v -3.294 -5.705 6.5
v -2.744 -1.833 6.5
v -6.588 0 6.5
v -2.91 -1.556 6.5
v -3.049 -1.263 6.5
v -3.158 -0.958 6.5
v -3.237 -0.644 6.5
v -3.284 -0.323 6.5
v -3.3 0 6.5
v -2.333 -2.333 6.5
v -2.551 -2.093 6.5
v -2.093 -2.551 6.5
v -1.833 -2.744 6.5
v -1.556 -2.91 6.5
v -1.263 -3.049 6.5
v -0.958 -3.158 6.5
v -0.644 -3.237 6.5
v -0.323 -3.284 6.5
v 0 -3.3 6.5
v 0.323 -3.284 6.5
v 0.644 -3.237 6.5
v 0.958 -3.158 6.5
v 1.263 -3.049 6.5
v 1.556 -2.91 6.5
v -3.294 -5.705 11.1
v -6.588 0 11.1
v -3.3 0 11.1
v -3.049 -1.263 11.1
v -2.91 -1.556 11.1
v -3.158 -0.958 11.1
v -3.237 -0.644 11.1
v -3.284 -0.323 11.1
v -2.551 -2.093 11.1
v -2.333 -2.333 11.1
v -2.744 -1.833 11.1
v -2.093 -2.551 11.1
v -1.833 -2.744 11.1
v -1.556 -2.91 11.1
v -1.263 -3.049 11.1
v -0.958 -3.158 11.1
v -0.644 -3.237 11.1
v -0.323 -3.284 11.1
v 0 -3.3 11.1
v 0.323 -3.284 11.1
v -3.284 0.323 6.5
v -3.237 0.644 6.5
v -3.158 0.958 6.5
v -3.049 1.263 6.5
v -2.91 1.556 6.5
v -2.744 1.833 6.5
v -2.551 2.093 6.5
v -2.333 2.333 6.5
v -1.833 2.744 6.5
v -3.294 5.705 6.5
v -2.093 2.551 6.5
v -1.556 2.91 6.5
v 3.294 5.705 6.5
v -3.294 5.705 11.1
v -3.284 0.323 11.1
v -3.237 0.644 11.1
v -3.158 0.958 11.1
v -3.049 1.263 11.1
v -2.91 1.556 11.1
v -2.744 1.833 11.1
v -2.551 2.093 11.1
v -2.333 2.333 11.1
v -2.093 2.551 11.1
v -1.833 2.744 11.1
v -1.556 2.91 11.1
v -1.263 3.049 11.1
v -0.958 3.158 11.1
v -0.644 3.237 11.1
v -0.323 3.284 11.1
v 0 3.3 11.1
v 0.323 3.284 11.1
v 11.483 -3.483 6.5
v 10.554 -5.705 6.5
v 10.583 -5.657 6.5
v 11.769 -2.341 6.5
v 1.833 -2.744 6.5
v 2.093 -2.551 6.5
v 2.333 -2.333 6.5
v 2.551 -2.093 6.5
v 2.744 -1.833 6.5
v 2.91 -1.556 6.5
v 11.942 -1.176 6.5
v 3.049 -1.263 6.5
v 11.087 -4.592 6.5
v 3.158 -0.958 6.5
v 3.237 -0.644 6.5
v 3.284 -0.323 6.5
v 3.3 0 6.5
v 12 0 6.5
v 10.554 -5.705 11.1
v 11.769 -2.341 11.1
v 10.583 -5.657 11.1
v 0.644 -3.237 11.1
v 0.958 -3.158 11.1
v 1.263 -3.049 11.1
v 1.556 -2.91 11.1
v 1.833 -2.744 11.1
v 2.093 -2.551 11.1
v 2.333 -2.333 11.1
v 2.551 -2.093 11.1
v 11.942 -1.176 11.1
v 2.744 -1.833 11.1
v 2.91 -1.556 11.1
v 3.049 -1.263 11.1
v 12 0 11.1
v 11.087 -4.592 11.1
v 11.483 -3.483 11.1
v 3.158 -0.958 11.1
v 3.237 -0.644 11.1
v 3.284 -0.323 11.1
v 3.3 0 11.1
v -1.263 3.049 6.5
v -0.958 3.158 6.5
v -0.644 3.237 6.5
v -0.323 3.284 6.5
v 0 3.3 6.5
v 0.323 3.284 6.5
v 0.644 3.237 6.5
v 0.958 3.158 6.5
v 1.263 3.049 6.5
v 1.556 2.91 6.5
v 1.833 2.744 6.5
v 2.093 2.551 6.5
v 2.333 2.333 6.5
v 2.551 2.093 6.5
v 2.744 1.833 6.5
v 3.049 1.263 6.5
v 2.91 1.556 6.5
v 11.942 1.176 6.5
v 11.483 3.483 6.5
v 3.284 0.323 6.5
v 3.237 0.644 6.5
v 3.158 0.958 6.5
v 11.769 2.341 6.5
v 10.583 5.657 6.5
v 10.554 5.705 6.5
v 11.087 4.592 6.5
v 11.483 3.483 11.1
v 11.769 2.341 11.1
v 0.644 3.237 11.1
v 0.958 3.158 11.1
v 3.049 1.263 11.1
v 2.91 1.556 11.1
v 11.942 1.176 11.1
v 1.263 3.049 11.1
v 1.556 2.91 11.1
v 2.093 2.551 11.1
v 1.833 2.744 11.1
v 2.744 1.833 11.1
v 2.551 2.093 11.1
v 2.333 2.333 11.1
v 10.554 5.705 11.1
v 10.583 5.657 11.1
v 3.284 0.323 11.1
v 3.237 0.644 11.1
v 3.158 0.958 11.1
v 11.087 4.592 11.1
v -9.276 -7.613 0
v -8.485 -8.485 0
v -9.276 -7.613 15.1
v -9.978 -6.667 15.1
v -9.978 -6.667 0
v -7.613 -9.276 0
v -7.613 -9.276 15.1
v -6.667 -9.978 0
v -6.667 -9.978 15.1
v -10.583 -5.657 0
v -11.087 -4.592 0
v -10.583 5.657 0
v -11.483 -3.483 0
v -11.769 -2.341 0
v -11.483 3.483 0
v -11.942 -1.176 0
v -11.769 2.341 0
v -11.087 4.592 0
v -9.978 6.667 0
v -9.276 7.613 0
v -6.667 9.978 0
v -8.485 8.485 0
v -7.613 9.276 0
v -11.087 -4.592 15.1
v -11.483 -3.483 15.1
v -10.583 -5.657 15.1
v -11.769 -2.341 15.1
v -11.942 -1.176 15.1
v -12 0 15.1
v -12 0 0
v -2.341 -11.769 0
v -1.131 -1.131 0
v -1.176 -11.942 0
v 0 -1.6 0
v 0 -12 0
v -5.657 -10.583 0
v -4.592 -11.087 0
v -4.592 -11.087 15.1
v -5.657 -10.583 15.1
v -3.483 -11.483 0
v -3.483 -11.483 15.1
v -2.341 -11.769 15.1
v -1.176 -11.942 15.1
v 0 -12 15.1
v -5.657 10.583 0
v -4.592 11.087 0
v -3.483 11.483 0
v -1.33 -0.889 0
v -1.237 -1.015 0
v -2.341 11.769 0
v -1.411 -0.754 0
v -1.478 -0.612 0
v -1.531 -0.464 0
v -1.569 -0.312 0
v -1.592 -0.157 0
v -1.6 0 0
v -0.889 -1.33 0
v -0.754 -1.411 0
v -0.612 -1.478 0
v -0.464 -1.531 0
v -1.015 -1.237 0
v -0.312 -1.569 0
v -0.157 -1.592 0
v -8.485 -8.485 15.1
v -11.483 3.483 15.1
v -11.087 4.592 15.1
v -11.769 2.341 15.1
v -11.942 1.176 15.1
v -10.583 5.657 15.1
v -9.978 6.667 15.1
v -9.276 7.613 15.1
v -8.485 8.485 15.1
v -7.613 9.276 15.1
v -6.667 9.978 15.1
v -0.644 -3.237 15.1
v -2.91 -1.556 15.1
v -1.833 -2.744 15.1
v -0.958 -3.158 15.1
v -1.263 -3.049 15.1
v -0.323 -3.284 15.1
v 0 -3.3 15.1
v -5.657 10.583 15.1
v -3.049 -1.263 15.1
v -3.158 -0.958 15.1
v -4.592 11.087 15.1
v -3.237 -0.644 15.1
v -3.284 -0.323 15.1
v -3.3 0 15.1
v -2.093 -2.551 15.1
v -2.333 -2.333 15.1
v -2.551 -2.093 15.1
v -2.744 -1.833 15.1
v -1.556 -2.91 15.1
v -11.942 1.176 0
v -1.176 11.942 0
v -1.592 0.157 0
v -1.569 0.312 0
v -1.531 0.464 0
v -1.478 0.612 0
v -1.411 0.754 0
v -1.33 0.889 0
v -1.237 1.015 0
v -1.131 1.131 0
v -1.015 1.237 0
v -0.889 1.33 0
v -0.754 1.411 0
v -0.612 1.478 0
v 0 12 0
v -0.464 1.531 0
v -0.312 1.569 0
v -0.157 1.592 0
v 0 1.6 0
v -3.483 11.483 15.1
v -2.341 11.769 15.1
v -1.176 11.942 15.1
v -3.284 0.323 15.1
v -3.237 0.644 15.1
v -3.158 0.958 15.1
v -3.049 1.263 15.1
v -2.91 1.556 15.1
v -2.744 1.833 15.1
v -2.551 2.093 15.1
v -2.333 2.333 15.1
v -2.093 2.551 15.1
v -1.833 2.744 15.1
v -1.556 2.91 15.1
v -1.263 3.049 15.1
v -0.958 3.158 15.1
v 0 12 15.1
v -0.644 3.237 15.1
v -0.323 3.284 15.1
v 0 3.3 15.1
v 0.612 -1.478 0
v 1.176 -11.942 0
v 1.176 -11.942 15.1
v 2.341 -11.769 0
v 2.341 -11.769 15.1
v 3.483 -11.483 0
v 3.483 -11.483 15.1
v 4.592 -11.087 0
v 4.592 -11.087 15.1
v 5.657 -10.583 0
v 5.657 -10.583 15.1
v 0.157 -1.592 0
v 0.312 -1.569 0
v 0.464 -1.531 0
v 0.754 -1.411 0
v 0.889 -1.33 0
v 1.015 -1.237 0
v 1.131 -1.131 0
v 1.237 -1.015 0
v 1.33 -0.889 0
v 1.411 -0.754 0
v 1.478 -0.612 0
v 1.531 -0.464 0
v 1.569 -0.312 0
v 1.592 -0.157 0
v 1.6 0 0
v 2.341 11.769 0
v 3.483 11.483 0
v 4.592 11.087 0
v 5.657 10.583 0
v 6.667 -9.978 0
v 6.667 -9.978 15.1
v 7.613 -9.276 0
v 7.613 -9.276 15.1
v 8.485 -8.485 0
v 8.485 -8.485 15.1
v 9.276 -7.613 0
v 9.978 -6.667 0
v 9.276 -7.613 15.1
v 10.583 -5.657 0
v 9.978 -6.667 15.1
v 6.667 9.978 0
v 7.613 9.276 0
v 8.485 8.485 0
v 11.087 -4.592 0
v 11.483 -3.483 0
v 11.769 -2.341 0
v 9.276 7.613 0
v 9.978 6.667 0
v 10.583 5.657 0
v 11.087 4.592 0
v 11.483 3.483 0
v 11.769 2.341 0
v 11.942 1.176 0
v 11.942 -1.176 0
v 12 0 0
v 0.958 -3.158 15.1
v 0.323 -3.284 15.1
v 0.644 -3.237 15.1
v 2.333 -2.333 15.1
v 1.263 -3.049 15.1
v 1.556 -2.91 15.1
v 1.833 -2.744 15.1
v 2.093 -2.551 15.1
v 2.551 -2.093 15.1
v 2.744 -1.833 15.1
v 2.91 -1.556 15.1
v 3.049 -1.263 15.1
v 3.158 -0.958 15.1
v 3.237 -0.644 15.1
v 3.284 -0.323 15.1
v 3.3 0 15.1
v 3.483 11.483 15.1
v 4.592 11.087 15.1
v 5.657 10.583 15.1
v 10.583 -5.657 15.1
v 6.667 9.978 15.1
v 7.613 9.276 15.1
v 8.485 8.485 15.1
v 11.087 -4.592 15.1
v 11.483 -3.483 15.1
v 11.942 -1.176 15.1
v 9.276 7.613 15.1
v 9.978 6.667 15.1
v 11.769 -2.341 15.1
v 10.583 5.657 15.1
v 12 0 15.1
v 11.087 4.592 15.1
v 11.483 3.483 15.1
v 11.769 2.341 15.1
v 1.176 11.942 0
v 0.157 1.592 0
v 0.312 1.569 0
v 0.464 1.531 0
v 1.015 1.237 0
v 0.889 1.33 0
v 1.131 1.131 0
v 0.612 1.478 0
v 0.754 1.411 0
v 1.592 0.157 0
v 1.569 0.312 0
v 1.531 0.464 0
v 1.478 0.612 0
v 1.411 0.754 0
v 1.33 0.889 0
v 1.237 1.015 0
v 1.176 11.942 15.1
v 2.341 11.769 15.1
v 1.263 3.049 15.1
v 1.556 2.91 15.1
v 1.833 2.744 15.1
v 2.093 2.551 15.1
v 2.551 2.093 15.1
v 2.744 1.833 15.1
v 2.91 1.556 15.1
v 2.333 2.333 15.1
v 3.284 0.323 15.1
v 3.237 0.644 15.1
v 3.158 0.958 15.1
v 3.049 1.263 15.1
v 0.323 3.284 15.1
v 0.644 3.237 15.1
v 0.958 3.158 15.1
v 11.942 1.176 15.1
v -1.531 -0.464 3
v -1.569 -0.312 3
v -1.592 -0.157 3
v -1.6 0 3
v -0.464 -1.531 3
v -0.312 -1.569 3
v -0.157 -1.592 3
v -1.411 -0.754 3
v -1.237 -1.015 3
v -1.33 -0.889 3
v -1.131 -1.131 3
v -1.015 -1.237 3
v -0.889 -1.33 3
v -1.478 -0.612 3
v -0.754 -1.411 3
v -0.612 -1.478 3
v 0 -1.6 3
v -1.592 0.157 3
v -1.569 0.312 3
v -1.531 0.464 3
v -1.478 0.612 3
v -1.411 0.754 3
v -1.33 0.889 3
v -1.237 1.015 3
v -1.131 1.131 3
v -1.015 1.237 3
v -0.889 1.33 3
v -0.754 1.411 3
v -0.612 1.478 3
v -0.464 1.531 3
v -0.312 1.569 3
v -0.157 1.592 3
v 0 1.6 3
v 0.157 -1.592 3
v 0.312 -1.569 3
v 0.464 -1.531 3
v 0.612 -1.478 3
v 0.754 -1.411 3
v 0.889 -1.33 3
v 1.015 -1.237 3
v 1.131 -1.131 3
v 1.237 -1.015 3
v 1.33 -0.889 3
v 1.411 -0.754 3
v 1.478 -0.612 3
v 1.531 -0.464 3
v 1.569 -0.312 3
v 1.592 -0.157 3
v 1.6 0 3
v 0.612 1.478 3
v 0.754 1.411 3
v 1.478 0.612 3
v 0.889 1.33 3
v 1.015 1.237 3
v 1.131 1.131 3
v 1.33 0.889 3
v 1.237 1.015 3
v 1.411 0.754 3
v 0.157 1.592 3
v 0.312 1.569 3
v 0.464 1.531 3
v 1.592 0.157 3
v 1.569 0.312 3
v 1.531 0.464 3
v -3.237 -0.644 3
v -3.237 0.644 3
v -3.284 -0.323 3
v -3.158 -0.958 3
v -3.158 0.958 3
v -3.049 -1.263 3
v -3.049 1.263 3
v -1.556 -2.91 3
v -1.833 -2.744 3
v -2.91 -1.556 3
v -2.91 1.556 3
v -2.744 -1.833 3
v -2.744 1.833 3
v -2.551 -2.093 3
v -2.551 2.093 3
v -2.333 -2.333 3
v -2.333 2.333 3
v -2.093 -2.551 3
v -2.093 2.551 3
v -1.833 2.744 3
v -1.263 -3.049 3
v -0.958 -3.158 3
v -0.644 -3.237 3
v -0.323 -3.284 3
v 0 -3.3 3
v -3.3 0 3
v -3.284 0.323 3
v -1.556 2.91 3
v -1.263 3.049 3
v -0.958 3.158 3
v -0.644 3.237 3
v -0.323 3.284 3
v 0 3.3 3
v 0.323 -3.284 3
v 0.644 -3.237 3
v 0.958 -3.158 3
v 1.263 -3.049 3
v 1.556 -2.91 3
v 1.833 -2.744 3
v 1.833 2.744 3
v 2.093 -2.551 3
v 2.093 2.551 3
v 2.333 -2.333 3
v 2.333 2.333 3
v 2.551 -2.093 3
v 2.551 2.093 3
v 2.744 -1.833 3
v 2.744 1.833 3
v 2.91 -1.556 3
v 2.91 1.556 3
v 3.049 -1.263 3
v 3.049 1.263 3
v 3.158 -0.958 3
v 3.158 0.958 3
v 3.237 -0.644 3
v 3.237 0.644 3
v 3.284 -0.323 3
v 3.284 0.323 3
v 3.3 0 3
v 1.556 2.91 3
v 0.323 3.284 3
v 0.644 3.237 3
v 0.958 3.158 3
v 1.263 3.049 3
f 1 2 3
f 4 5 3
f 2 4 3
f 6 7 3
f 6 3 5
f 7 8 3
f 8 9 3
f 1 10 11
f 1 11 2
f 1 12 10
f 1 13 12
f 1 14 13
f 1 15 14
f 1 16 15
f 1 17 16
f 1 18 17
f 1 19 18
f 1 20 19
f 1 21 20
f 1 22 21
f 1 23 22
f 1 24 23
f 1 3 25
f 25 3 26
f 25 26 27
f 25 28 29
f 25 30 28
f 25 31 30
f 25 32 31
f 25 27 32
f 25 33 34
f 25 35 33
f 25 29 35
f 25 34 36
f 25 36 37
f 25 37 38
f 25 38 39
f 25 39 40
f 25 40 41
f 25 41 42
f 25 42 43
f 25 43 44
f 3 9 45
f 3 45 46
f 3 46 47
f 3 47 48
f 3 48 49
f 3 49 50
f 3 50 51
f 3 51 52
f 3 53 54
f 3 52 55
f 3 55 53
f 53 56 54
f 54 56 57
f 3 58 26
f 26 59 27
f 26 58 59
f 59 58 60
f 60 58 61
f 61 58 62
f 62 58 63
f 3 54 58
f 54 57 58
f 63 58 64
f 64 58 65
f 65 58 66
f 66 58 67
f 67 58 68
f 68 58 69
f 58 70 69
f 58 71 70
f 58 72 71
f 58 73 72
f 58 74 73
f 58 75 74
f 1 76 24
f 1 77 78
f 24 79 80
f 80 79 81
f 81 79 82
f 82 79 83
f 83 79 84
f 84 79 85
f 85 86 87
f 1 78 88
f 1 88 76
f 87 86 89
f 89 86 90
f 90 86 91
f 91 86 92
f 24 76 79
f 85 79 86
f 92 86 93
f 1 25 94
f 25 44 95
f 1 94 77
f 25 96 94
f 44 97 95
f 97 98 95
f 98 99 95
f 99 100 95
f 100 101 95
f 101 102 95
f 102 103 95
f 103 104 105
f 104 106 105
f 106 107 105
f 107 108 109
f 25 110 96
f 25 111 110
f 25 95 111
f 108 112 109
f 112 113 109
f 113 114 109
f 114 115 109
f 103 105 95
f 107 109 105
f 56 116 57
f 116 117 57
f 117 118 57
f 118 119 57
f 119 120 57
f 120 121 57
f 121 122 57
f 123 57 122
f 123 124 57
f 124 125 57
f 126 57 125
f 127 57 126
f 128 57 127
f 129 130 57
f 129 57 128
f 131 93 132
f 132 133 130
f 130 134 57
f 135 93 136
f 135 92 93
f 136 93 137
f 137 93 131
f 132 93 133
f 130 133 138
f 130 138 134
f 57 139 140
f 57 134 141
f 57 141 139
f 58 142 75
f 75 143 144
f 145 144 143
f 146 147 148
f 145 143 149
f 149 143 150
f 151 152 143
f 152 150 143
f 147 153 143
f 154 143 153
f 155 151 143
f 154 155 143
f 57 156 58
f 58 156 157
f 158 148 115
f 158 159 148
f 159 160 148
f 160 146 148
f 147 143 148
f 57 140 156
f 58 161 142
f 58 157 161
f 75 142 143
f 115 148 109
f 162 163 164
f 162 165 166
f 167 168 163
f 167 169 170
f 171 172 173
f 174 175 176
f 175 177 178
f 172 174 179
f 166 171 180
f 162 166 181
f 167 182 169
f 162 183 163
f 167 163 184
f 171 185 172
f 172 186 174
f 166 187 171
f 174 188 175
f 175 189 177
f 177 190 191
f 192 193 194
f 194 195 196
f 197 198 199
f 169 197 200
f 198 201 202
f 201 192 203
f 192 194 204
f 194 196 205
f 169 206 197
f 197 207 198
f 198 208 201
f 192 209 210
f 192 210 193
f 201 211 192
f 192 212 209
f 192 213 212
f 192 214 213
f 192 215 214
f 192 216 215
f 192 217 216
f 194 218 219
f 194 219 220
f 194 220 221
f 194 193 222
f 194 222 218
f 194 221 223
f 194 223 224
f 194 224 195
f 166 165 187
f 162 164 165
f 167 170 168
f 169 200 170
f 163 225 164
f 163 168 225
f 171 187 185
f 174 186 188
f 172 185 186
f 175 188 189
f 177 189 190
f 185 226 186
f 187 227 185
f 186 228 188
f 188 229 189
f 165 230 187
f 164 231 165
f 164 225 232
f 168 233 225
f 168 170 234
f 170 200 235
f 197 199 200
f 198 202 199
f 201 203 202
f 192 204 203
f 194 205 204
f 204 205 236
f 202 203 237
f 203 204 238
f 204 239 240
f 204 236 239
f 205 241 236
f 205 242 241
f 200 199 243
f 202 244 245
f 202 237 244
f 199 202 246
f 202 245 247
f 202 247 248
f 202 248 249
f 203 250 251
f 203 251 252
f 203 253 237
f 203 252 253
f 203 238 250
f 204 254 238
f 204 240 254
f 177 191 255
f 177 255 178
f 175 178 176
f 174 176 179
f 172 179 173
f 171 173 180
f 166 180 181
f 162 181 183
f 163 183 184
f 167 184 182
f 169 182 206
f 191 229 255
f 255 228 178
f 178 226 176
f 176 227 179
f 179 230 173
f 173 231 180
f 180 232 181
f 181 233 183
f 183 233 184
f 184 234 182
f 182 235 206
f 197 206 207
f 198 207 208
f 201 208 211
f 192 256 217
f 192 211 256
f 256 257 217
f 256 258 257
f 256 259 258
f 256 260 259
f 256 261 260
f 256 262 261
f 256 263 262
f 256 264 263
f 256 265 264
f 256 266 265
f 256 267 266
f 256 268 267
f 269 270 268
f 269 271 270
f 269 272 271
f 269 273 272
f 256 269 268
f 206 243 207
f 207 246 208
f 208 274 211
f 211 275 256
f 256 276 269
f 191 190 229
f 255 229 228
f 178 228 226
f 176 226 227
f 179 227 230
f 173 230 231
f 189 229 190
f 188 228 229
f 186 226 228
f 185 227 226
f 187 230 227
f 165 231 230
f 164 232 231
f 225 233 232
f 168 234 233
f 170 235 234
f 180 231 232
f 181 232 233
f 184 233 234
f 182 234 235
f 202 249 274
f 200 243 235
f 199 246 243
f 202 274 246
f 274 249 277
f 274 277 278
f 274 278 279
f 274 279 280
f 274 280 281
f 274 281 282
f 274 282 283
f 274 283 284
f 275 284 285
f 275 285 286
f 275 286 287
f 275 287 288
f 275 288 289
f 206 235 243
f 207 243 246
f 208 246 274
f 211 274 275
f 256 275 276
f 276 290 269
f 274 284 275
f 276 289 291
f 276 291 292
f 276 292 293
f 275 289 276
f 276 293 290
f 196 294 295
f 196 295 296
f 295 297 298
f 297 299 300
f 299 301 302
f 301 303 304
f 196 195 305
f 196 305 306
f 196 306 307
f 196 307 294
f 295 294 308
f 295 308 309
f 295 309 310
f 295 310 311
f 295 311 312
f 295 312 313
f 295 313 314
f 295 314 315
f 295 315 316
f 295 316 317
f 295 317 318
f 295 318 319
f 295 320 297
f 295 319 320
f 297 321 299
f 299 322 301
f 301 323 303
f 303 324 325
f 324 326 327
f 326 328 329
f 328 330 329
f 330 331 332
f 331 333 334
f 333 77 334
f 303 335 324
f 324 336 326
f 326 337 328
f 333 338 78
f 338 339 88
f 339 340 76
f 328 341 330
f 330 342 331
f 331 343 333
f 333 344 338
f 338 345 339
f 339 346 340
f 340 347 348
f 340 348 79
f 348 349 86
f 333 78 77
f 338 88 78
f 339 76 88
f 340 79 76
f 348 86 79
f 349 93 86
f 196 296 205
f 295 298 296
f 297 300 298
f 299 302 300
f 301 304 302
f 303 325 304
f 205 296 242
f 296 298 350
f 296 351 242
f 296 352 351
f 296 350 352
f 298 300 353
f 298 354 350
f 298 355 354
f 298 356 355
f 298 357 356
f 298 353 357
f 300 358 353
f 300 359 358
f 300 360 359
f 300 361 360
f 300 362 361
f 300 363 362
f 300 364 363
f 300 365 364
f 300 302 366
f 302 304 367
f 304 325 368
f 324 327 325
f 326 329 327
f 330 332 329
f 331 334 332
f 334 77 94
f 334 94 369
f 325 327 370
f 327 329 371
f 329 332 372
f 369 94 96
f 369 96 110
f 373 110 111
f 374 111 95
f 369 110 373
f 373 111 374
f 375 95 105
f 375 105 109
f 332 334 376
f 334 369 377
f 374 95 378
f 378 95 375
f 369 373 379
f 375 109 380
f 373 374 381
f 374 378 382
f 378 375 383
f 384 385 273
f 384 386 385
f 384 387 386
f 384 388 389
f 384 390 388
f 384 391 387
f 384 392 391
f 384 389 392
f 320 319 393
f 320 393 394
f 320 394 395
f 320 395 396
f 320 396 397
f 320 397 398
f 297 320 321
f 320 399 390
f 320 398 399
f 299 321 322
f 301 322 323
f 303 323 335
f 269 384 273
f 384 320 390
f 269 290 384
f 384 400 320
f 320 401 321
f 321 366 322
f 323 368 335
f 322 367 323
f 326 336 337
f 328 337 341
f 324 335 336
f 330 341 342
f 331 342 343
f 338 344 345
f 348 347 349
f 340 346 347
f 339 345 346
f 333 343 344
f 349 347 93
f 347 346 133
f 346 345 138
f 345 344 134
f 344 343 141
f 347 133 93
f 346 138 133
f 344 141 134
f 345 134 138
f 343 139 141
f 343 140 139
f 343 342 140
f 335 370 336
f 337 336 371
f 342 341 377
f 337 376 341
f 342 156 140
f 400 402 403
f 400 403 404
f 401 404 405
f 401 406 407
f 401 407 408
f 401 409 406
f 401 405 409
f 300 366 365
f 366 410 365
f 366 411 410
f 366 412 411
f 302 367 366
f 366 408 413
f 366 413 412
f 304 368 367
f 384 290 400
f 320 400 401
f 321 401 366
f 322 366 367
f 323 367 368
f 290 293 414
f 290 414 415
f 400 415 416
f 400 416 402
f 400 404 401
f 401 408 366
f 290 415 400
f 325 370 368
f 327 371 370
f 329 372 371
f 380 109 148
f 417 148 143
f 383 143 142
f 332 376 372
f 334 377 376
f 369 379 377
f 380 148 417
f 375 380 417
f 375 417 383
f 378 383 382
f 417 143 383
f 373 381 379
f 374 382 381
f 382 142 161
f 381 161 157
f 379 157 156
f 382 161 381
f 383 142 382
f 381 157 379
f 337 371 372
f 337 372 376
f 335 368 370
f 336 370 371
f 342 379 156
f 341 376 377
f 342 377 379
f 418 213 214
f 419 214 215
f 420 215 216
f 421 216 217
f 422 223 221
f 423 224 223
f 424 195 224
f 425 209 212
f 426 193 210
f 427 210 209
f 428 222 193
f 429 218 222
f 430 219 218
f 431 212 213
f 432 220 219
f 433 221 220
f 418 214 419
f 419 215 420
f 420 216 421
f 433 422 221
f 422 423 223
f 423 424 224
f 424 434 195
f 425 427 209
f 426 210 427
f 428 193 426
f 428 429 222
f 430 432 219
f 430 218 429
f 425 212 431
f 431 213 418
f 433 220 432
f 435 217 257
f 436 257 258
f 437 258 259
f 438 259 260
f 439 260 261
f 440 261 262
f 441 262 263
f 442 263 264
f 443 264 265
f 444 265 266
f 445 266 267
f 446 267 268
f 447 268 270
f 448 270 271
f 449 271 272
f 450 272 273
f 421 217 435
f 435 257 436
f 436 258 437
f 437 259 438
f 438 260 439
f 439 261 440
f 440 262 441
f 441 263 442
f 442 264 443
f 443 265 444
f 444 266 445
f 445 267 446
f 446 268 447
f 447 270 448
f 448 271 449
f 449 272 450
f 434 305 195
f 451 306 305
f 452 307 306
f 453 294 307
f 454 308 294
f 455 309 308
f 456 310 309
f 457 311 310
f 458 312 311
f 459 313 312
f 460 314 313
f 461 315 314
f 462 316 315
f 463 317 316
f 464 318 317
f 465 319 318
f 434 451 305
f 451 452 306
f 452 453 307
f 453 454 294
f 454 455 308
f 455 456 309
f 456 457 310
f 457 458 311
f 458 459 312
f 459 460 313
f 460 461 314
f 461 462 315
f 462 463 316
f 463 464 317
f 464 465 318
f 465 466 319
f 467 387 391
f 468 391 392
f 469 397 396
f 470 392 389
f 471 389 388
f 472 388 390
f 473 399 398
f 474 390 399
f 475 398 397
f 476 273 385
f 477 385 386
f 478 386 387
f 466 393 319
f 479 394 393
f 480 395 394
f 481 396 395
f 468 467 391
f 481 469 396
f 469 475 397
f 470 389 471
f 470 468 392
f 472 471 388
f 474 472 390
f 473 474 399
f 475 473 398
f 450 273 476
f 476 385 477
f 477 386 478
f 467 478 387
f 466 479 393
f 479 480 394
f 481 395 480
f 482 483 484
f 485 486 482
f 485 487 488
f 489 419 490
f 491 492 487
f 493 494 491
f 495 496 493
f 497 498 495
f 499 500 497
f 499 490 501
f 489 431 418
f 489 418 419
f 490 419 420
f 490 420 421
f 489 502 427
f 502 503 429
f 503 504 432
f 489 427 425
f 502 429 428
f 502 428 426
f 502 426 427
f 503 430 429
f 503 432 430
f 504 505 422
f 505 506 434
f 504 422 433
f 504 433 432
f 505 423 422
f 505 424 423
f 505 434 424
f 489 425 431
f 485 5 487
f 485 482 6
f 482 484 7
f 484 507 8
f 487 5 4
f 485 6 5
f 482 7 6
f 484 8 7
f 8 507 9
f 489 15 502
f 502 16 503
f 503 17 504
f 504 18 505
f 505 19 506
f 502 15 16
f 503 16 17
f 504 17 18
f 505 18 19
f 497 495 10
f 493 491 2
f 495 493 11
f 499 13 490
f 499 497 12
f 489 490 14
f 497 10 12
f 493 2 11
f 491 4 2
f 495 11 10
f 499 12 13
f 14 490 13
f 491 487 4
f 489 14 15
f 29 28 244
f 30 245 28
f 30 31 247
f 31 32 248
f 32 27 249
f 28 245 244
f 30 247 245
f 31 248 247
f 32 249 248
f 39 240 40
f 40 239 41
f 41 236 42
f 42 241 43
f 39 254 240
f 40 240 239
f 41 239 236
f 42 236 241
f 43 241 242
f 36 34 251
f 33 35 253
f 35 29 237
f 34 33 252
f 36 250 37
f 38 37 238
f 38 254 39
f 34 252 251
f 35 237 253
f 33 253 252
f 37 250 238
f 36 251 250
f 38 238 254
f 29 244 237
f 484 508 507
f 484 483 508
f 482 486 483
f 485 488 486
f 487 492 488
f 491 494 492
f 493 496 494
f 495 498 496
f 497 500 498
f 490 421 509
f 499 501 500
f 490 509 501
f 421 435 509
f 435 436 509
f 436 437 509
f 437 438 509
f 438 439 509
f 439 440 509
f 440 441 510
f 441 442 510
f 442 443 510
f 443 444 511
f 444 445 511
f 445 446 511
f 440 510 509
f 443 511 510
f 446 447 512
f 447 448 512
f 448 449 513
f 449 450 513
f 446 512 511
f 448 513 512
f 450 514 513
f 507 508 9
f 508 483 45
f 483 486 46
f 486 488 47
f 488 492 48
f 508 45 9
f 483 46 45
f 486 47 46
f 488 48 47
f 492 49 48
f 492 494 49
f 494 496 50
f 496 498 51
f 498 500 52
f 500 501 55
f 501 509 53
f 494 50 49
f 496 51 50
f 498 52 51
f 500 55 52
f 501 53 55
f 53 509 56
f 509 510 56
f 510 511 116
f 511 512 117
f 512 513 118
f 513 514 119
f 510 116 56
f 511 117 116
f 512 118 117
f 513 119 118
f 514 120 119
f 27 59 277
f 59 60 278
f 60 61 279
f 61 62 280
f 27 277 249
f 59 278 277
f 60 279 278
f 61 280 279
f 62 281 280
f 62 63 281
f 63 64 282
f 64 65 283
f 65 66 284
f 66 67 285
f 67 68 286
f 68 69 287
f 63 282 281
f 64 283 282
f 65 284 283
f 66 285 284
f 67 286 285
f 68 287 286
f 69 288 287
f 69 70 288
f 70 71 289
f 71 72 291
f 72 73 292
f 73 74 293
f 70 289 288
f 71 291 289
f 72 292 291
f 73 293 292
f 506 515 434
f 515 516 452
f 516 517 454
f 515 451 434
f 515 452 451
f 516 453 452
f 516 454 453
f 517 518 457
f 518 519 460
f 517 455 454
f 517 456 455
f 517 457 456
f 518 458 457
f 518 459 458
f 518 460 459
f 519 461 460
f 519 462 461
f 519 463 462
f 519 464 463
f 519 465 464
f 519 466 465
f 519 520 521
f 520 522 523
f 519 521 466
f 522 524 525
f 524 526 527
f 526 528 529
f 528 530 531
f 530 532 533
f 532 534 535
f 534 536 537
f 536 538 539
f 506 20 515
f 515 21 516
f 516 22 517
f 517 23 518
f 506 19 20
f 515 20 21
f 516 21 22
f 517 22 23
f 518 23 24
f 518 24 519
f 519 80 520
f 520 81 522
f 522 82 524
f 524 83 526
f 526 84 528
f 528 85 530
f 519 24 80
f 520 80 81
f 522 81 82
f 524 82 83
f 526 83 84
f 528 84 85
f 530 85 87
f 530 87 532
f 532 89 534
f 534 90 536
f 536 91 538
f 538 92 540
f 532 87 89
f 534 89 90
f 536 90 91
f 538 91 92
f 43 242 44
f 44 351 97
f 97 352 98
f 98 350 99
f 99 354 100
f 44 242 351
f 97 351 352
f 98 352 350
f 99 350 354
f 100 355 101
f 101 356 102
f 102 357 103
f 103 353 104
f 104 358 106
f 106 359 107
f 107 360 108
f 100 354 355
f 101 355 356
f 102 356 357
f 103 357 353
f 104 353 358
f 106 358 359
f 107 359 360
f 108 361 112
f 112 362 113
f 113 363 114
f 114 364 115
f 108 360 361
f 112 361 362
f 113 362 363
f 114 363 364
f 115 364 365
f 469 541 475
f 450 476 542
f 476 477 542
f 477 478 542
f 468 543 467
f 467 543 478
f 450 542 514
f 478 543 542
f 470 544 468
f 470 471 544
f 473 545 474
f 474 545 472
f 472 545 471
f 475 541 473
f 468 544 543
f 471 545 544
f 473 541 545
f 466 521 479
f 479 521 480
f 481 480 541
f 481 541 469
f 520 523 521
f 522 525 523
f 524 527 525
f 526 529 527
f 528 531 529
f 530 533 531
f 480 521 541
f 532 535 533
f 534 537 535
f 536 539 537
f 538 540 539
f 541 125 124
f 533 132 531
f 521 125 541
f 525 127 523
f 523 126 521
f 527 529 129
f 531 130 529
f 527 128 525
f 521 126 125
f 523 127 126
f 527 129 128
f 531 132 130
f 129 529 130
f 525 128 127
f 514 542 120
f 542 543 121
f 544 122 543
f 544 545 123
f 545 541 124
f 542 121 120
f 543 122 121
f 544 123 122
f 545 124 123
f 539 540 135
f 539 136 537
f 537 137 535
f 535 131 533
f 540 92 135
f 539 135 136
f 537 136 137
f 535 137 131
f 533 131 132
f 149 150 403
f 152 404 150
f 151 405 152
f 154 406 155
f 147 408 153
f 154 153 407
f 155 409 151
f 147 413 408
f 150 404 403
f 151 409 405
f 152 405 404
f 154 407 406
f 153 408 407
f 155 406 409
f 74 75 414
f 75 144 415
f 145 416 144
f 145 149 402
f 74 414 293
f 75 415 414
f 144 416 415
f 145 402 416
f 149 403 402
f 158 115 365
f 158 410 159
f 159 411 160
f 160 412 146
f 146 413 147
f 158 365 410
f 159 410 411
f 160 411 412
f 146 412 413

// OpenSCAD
// Magnet swivel (hardware/gantry/README.md, Step 3). Holds the 20 x 15 mm electromagnet underneath and the
// 1/4"-20 swivel bolt's head in a sideways hex slot, so the bolt turns WITH the swivel in the bracket's hole.
// Assembly: drop the M3 x 6 screw in through the top hole, screw it down into the magnet's M3 thread
// (screwdriver through the top hole), then slide the bolt head into the hex slot, thread up.
// Print: 100% infill, upright (top hole up), PLA+. Units: mm.

body_d      = 24;      // a little over the magnet's 20 mm
floor_t     = 3;       // the M3 x 6 screw passes through this into the magnet (3 mm of thread engaged)
m3_hole     = 3.2;
m3_head_d   = 6.2;     // pocket for the M3 head, reached through the top hole
m3_head_h   = 3.5;
hex_af      = 11.11 + 0.3;   // 7/16" across flats + clearance
hex_h       = 4.2 + 0.4;     // 1/4"-20 hex head height (5/32") + clearance
top_hole    = 6.6;     // the bolt's thread out; also the screwdriver's way in
top_t       = 4;
$fn = 64;

h = floor_t + m3_head_h + hex_h + top_t;

difference() {
    cylinder(d = body_d, h = h);
    translate([0, 0, -1]) cylinder(d = m3_hole, h = floor_t + 2);                       // M3 through the floor
    translate([0, 0, floor_t]) cylinder(d = m3_head_d, h = m3_head_h + 0.01);           // M3 head pocket
    translate([0, 0, floor_t + m3_head_h])                                              // hex slot, open to +X
        hull() {
            cylinder(d = hex_af / cos(30), h = hex_h, $fn = 6);
            translate([body_d, 0, 0]) cylinder(d = hex_af / cos(30), h = hex_h, $fn = 6);
        }
    translate([0, 0, floor_t]) cylinder(d = top_hole, h = h);                           // top hole, all the way down
}
